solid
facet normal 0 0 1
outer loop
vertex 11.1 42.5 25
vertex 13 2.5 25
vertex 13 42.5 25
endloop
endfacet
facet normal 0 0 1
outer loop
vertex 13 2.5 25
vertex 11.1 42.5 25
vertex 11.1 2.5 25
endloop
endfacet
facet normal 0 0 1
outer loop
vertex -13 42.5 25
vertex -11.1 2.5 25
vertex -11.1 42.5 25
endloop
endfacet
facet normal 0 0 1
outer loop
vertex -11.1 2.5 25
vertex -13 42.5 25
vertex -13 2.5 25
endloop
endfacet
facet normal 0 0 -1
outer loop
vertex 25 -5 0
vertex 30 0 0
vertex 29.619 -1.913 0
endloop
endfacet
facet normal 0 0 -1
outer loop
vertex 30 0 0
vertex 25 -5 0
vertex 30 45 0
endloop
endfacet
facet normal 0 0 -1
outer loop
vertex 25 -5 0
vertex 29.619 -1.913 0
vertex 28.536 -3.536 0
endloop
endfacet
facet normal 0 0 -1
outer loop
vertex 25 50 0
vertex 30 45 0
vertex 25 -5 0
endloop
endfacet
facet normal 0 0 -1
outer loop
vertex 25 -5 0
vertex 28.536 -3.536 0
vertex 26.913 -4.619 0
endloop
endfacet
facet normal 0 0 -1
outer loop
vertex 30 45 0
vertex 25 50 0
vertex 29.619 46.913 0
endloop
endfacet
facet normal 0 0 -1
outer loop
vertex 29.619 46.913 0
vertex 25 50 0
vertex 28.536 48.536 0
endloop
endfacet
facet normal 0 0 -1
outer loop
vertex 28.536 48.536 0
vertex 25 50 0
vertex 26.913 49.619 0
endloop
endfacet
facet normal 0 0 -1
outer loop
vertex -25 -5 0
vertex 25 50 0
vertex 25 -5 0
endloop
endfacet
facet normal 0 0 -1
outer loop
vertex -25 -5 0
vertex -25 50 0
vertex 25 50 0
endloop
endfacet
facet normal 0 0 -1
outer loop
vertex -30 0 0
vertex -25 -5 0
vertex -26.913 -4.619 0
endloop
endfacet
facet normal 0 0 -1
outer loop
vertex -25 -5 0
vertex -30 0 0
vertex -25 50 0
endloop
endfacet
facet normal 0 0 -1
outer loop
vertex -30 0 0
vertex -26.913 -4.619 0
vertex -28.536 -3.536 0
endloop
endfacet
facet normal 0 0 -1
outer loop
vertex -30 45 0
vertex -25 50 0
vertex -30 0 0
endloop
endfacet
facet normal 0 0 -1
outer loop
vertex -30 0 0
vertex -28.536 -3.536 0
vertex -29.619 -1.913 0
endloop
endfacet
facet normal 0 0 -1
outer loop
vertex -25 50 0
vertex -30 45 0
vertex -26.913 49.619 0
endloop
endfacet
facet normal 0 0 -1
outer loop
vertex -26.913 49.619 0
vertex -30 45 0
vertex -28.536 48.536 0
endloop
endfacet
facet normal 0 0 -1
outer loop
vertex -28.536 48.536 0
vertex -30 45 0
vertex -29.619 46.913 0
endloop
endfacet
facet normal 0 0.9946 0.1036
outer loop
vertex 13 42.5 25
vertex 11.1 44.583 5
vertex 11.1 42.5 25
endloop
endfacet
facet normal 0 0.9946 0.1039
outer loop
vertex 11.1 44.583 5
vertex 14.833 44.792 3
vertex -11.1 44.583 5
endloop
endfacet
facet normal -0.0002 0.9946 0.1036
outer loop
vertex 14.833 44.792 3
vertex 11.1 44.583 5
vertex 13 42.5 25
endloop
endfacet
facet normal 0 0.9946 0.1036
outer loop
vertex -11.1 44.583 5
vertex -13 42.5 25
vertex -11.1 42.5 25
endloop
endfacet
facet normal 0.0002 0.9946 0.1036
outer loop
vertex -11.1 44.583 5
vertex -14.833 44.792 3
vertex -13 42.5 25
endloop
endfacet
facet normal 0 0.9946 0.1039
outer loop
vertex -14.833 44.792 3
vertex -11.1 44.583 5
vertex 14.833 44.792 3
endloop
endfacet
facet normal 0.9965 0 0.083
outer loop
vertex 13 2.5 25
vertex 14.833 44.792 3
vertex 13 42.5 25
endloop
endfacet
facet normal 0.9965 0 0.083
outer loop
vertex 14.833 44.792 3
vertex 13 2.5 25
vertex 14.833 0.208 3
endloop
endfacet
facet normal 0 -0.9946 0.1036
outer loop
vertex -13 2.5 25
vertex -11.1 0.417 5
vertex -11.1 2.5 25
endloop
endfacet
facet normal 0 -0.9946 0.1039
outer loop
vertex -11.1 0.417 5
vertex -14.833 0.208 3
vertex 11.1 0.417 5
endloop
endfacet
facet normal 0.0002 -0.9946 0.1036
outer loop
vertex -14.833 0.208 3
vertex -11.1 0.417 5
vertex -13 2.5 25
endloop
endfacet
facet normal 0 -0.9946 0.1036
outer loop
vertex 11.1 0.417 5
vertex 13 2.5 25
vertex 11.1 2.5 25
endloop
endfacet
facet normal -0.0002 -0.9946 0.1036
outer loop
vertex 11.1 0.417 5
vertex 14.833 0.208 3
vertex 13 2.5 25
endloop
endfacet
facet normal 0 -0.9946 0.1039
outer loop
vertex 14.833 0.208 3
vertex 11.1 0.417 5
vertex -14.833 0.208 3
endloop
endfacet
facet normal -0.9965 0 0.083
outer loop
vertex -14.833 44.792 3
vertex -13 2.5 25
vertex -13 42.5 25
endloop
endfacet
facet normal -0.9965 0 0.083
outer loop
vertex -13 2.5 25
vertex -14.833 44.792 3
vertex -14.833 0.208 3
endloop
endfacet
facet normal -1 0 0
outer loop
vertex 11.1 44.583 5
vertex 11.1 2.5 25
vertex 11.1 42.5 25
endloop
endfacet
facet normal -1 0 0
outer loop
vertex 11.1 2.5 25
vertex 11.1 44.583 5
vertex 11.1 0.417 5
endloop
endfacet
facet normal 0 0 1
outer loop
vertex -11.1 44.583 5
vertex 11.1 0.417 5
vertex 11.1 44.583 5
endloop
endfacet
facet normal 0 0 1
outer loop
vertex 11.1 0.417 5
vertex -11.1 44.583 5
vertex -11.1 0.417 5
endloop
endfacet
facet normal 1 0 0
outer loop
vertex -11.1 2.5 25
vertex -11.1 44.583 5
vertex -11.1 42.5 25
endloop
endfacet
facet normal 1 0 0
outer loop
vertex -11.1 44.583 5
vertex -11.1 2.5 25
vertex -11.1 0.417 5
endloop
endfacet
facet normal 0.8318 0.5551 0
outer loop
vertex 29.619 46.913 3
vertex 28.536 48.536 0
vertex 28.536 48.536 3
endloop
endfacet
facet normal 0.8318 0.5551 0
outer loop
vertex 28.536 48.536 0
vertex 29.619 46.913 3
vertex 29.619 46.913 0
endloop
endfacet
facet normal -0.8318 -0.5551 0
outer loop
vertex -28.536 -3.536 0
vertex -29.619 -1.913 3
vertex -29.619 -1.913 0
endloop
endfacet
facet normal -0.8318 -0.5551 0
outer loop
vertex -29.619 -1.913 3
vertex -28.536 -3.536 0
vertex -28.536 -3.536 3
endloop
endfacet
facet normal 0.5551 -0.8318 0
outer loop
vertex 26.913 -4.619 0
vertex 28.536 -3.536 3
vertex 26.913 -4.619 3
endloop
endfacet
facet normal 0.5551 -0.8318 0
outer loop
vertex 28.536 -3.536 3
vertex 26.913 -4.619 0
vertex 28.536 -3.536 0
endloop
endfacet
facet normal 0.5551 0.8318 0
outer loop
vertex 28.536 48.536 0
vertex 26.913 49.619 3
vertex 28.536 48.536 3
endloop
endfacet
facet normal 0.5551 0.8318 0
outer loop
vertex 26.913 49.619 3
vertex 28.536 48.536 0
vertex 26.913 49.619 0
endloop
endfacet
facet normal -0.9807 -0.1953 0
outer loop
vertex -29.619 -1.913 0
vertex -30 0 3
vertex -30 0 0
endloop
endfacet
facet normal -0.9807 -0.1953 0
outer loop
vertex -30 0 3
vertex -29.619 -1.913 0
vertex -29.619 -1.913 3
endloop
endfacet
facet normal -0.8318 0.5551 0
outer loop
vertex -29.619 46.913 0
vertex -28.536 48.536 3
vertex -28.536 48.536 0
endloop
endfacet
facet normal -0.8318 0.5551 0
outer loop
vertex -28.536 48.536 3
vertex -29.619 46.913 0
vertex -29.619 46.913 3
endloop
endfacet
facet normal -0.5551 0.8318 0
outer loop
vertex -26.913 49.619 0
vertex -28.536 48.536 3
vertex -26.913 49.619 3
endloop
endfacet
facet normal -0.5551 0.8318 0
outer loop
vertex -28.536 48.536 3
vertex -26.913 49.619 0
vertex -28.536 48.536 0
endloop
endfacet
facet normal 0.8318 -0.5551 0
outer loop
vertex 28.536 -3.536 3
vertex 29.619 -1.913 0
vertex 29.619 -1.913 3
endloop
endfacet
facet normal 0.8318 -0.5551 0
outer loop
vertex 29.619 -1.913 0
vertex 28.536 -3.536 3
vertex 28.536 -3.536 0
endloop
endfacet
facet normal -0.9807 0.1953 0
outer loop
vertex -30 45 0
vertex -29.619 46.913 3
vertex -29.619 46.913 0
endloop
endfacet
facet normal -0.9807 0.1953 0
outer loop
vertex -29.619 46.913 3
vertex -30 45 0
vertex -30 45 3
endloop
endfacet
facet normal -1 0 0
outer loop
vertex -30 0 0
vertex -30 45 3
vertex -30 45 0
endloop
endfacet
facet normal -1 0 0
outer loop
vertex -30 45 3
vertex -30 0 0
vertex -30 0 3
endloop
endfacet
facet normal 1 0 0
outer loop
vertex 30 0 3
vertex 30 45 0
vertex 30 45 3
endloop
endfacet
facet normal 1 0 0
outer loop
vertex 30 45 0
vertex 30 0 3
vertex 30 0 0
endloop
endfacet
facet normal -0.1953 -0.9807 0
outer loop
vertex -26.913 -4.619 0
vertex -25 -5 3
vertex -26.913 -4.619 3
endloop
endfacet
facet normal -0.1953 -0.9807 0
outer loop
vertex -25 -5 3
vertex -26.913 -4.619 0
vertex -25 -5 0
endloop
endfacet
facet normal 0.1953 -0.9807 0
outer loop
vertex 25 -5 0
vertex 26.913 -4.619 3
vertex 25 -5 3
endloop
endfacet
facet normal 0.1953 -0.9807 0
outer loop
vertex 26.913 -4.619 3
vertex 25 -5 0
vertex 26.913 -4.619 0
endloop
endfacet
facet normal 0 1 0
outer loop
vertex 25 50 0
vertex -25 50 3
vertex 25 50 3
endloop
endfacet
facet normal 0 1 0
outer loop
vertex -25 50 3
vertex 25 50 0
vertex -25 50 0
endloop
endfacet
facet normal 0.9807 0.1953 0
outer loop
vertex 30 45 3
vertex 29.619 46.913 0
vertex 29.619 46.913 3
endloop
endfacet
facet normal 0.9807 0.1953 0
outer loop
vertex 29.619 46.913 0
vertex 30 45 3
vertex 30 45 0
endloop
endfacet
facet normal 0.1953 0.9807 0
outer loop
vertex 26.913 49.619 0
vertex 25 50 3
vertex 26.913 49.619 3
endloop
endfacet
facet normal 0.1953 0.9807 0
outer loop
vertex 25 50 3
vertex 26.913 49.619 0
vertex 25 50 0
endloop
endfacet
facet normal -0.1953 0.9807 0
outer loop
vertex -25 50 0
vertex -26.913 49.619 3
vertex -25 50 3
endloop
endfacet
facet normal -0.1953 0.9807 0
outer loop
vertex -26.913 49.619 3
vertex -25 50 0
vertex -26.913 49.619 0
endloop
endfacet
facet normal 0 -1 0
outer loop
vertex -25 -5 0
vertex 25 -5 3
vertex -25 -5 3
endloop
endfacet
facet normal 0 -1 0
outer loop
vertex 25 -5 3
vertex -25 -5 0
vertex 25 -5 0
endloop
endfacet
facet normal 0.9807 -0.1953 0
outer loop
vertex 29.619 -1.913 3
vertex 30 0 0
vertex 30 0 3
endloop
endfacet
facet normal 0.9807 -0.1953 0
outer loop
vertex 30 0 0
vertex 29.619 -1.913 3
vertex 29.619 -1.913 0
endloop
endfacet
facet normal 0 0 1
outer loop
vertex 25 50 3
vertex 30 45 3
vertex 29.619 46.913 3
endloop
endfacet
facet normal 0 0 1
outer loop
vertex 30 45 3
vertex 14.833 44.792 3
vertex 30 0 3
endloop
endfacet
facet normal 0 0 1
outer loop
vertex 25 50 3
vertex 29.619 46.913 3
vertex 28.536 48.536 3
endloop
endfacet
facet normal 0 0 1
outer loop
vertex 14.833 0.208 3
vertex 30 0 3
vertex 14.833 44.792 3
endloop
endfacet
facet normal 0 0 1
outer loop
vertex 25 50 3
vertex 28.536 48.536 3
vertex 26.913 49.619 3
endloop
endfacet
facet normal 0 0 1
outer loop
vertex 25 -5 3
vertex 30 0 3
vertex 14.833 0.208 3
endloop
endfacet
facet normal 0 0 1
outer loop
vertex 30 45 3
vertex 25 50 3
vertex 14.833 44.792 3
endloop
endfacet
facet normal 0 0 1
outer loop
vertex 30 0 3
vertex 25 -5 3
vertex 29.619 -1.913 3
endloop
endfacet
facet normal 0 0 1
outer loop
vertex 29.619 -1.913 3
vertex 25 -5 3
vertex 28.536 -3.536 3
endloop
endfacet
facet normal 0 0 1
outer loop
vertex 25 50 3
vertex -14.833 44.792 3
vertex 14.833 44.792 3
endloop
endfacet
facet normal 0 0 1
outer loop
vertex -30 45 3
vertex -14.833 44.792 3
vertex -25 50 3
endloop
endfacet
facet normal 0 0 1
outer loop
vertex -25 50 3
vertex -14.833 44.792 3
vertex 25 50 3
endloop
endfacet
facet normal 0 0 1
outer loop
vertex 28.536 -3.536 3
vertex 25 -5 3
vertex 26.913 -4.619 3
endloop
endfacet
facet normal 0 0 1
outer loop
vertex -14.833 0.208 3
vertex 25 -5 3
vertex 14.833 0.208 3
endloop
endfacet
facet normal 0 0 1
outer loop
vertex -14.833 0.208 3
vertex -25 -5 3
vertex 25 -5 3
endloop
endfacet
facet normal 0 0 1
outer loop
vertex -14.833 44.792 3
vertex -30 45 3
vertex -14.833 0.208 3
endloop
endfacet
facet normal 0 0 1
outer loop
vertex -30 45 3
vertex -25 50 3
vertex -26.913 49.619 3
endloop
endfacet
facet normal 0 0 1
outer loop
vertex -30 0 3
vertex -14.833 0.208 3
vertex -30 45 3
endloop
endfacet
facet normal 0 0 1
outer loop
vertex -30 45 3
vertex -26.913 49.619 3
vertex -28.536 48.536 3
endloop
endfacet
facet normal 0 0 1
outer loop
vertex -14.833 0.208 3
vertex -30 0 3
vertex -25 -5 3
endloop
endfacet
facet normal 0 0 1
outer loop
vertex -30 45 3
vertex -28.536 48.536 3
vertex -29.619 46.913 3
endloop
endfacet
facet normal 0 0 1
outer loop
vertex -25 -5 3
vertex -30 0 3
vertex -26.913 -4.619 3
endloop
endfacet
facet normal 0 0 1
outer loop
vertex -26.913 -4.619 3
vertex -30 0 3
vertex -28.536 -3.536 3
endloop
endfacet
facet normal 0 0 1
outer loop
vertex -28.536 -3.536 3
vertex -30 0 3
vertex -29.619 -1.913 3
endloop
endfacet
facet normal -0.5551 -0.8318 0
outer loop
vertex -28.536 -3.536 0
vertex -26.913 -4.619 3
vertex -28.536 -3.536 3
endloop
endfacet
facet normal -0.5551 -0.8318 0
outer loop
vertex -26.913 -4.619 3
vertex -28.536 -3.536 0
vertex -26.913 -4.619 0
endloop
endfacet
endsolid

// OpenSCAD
// ==========================================
// [사용자 설정 변수]
// ==========================================

// 1. 하단(Base) 사각형 크기
bottom_x = 30;
bottom_y = 45;

// 2. 상단(Top) 사각형 크기
top_x = 26;
top_y = 40;

// 3. 전체 높이 및 상단 위치
total_height = 25; // linear_extrude(1)을 고려한 총 높이 (30 + 1)

// 4. 빼낼 부분 (HDD) 너비
hdd_width = 22;
hdd_margin = 0.2; // 여유 공차


// ==========================================
// [모델링 연산]
// ==========================================

// 실제 연산에 사용될 HDD 총 너비
hdd = hdd_width + hdd_margin; 

difference() {
    // 겉 모양 생성 (Hull 연산)
    translate([-bottom_x/2, 0, 0]) hull() {
        // 하단 사각형 (두께 1)
        linear_extrude(1) 
            square([bottom_x, bottom_y]);
        
        // 상단 사각형 (지정된 높이로 이동, 두께 1)
        translate([(bottom_x - top_x)/2, (bottom_y - top_y)/2, total_height - 1]) 
            linear_extrude(1) 
            square([top_x, top_y]);
    }
    
    // 가운데 빼낼 부분 (Cube 컷아웃)
    translate([-hdd/2, -10, 5]) 
        cube([hdd, 200, 100]);
}

translate([-bottom_x/2, 0, 0]) 
linear_extrude(3) hull() {
    translate([bottom_x+10, bottom_y, 0]) circle(5);
    translate([bottom_x+10, 0, 0]) circle(5);
    translate([-10, bottom_y, 0]) circle(5);
    translate([-10, 0, 0]) circle(5);
}
